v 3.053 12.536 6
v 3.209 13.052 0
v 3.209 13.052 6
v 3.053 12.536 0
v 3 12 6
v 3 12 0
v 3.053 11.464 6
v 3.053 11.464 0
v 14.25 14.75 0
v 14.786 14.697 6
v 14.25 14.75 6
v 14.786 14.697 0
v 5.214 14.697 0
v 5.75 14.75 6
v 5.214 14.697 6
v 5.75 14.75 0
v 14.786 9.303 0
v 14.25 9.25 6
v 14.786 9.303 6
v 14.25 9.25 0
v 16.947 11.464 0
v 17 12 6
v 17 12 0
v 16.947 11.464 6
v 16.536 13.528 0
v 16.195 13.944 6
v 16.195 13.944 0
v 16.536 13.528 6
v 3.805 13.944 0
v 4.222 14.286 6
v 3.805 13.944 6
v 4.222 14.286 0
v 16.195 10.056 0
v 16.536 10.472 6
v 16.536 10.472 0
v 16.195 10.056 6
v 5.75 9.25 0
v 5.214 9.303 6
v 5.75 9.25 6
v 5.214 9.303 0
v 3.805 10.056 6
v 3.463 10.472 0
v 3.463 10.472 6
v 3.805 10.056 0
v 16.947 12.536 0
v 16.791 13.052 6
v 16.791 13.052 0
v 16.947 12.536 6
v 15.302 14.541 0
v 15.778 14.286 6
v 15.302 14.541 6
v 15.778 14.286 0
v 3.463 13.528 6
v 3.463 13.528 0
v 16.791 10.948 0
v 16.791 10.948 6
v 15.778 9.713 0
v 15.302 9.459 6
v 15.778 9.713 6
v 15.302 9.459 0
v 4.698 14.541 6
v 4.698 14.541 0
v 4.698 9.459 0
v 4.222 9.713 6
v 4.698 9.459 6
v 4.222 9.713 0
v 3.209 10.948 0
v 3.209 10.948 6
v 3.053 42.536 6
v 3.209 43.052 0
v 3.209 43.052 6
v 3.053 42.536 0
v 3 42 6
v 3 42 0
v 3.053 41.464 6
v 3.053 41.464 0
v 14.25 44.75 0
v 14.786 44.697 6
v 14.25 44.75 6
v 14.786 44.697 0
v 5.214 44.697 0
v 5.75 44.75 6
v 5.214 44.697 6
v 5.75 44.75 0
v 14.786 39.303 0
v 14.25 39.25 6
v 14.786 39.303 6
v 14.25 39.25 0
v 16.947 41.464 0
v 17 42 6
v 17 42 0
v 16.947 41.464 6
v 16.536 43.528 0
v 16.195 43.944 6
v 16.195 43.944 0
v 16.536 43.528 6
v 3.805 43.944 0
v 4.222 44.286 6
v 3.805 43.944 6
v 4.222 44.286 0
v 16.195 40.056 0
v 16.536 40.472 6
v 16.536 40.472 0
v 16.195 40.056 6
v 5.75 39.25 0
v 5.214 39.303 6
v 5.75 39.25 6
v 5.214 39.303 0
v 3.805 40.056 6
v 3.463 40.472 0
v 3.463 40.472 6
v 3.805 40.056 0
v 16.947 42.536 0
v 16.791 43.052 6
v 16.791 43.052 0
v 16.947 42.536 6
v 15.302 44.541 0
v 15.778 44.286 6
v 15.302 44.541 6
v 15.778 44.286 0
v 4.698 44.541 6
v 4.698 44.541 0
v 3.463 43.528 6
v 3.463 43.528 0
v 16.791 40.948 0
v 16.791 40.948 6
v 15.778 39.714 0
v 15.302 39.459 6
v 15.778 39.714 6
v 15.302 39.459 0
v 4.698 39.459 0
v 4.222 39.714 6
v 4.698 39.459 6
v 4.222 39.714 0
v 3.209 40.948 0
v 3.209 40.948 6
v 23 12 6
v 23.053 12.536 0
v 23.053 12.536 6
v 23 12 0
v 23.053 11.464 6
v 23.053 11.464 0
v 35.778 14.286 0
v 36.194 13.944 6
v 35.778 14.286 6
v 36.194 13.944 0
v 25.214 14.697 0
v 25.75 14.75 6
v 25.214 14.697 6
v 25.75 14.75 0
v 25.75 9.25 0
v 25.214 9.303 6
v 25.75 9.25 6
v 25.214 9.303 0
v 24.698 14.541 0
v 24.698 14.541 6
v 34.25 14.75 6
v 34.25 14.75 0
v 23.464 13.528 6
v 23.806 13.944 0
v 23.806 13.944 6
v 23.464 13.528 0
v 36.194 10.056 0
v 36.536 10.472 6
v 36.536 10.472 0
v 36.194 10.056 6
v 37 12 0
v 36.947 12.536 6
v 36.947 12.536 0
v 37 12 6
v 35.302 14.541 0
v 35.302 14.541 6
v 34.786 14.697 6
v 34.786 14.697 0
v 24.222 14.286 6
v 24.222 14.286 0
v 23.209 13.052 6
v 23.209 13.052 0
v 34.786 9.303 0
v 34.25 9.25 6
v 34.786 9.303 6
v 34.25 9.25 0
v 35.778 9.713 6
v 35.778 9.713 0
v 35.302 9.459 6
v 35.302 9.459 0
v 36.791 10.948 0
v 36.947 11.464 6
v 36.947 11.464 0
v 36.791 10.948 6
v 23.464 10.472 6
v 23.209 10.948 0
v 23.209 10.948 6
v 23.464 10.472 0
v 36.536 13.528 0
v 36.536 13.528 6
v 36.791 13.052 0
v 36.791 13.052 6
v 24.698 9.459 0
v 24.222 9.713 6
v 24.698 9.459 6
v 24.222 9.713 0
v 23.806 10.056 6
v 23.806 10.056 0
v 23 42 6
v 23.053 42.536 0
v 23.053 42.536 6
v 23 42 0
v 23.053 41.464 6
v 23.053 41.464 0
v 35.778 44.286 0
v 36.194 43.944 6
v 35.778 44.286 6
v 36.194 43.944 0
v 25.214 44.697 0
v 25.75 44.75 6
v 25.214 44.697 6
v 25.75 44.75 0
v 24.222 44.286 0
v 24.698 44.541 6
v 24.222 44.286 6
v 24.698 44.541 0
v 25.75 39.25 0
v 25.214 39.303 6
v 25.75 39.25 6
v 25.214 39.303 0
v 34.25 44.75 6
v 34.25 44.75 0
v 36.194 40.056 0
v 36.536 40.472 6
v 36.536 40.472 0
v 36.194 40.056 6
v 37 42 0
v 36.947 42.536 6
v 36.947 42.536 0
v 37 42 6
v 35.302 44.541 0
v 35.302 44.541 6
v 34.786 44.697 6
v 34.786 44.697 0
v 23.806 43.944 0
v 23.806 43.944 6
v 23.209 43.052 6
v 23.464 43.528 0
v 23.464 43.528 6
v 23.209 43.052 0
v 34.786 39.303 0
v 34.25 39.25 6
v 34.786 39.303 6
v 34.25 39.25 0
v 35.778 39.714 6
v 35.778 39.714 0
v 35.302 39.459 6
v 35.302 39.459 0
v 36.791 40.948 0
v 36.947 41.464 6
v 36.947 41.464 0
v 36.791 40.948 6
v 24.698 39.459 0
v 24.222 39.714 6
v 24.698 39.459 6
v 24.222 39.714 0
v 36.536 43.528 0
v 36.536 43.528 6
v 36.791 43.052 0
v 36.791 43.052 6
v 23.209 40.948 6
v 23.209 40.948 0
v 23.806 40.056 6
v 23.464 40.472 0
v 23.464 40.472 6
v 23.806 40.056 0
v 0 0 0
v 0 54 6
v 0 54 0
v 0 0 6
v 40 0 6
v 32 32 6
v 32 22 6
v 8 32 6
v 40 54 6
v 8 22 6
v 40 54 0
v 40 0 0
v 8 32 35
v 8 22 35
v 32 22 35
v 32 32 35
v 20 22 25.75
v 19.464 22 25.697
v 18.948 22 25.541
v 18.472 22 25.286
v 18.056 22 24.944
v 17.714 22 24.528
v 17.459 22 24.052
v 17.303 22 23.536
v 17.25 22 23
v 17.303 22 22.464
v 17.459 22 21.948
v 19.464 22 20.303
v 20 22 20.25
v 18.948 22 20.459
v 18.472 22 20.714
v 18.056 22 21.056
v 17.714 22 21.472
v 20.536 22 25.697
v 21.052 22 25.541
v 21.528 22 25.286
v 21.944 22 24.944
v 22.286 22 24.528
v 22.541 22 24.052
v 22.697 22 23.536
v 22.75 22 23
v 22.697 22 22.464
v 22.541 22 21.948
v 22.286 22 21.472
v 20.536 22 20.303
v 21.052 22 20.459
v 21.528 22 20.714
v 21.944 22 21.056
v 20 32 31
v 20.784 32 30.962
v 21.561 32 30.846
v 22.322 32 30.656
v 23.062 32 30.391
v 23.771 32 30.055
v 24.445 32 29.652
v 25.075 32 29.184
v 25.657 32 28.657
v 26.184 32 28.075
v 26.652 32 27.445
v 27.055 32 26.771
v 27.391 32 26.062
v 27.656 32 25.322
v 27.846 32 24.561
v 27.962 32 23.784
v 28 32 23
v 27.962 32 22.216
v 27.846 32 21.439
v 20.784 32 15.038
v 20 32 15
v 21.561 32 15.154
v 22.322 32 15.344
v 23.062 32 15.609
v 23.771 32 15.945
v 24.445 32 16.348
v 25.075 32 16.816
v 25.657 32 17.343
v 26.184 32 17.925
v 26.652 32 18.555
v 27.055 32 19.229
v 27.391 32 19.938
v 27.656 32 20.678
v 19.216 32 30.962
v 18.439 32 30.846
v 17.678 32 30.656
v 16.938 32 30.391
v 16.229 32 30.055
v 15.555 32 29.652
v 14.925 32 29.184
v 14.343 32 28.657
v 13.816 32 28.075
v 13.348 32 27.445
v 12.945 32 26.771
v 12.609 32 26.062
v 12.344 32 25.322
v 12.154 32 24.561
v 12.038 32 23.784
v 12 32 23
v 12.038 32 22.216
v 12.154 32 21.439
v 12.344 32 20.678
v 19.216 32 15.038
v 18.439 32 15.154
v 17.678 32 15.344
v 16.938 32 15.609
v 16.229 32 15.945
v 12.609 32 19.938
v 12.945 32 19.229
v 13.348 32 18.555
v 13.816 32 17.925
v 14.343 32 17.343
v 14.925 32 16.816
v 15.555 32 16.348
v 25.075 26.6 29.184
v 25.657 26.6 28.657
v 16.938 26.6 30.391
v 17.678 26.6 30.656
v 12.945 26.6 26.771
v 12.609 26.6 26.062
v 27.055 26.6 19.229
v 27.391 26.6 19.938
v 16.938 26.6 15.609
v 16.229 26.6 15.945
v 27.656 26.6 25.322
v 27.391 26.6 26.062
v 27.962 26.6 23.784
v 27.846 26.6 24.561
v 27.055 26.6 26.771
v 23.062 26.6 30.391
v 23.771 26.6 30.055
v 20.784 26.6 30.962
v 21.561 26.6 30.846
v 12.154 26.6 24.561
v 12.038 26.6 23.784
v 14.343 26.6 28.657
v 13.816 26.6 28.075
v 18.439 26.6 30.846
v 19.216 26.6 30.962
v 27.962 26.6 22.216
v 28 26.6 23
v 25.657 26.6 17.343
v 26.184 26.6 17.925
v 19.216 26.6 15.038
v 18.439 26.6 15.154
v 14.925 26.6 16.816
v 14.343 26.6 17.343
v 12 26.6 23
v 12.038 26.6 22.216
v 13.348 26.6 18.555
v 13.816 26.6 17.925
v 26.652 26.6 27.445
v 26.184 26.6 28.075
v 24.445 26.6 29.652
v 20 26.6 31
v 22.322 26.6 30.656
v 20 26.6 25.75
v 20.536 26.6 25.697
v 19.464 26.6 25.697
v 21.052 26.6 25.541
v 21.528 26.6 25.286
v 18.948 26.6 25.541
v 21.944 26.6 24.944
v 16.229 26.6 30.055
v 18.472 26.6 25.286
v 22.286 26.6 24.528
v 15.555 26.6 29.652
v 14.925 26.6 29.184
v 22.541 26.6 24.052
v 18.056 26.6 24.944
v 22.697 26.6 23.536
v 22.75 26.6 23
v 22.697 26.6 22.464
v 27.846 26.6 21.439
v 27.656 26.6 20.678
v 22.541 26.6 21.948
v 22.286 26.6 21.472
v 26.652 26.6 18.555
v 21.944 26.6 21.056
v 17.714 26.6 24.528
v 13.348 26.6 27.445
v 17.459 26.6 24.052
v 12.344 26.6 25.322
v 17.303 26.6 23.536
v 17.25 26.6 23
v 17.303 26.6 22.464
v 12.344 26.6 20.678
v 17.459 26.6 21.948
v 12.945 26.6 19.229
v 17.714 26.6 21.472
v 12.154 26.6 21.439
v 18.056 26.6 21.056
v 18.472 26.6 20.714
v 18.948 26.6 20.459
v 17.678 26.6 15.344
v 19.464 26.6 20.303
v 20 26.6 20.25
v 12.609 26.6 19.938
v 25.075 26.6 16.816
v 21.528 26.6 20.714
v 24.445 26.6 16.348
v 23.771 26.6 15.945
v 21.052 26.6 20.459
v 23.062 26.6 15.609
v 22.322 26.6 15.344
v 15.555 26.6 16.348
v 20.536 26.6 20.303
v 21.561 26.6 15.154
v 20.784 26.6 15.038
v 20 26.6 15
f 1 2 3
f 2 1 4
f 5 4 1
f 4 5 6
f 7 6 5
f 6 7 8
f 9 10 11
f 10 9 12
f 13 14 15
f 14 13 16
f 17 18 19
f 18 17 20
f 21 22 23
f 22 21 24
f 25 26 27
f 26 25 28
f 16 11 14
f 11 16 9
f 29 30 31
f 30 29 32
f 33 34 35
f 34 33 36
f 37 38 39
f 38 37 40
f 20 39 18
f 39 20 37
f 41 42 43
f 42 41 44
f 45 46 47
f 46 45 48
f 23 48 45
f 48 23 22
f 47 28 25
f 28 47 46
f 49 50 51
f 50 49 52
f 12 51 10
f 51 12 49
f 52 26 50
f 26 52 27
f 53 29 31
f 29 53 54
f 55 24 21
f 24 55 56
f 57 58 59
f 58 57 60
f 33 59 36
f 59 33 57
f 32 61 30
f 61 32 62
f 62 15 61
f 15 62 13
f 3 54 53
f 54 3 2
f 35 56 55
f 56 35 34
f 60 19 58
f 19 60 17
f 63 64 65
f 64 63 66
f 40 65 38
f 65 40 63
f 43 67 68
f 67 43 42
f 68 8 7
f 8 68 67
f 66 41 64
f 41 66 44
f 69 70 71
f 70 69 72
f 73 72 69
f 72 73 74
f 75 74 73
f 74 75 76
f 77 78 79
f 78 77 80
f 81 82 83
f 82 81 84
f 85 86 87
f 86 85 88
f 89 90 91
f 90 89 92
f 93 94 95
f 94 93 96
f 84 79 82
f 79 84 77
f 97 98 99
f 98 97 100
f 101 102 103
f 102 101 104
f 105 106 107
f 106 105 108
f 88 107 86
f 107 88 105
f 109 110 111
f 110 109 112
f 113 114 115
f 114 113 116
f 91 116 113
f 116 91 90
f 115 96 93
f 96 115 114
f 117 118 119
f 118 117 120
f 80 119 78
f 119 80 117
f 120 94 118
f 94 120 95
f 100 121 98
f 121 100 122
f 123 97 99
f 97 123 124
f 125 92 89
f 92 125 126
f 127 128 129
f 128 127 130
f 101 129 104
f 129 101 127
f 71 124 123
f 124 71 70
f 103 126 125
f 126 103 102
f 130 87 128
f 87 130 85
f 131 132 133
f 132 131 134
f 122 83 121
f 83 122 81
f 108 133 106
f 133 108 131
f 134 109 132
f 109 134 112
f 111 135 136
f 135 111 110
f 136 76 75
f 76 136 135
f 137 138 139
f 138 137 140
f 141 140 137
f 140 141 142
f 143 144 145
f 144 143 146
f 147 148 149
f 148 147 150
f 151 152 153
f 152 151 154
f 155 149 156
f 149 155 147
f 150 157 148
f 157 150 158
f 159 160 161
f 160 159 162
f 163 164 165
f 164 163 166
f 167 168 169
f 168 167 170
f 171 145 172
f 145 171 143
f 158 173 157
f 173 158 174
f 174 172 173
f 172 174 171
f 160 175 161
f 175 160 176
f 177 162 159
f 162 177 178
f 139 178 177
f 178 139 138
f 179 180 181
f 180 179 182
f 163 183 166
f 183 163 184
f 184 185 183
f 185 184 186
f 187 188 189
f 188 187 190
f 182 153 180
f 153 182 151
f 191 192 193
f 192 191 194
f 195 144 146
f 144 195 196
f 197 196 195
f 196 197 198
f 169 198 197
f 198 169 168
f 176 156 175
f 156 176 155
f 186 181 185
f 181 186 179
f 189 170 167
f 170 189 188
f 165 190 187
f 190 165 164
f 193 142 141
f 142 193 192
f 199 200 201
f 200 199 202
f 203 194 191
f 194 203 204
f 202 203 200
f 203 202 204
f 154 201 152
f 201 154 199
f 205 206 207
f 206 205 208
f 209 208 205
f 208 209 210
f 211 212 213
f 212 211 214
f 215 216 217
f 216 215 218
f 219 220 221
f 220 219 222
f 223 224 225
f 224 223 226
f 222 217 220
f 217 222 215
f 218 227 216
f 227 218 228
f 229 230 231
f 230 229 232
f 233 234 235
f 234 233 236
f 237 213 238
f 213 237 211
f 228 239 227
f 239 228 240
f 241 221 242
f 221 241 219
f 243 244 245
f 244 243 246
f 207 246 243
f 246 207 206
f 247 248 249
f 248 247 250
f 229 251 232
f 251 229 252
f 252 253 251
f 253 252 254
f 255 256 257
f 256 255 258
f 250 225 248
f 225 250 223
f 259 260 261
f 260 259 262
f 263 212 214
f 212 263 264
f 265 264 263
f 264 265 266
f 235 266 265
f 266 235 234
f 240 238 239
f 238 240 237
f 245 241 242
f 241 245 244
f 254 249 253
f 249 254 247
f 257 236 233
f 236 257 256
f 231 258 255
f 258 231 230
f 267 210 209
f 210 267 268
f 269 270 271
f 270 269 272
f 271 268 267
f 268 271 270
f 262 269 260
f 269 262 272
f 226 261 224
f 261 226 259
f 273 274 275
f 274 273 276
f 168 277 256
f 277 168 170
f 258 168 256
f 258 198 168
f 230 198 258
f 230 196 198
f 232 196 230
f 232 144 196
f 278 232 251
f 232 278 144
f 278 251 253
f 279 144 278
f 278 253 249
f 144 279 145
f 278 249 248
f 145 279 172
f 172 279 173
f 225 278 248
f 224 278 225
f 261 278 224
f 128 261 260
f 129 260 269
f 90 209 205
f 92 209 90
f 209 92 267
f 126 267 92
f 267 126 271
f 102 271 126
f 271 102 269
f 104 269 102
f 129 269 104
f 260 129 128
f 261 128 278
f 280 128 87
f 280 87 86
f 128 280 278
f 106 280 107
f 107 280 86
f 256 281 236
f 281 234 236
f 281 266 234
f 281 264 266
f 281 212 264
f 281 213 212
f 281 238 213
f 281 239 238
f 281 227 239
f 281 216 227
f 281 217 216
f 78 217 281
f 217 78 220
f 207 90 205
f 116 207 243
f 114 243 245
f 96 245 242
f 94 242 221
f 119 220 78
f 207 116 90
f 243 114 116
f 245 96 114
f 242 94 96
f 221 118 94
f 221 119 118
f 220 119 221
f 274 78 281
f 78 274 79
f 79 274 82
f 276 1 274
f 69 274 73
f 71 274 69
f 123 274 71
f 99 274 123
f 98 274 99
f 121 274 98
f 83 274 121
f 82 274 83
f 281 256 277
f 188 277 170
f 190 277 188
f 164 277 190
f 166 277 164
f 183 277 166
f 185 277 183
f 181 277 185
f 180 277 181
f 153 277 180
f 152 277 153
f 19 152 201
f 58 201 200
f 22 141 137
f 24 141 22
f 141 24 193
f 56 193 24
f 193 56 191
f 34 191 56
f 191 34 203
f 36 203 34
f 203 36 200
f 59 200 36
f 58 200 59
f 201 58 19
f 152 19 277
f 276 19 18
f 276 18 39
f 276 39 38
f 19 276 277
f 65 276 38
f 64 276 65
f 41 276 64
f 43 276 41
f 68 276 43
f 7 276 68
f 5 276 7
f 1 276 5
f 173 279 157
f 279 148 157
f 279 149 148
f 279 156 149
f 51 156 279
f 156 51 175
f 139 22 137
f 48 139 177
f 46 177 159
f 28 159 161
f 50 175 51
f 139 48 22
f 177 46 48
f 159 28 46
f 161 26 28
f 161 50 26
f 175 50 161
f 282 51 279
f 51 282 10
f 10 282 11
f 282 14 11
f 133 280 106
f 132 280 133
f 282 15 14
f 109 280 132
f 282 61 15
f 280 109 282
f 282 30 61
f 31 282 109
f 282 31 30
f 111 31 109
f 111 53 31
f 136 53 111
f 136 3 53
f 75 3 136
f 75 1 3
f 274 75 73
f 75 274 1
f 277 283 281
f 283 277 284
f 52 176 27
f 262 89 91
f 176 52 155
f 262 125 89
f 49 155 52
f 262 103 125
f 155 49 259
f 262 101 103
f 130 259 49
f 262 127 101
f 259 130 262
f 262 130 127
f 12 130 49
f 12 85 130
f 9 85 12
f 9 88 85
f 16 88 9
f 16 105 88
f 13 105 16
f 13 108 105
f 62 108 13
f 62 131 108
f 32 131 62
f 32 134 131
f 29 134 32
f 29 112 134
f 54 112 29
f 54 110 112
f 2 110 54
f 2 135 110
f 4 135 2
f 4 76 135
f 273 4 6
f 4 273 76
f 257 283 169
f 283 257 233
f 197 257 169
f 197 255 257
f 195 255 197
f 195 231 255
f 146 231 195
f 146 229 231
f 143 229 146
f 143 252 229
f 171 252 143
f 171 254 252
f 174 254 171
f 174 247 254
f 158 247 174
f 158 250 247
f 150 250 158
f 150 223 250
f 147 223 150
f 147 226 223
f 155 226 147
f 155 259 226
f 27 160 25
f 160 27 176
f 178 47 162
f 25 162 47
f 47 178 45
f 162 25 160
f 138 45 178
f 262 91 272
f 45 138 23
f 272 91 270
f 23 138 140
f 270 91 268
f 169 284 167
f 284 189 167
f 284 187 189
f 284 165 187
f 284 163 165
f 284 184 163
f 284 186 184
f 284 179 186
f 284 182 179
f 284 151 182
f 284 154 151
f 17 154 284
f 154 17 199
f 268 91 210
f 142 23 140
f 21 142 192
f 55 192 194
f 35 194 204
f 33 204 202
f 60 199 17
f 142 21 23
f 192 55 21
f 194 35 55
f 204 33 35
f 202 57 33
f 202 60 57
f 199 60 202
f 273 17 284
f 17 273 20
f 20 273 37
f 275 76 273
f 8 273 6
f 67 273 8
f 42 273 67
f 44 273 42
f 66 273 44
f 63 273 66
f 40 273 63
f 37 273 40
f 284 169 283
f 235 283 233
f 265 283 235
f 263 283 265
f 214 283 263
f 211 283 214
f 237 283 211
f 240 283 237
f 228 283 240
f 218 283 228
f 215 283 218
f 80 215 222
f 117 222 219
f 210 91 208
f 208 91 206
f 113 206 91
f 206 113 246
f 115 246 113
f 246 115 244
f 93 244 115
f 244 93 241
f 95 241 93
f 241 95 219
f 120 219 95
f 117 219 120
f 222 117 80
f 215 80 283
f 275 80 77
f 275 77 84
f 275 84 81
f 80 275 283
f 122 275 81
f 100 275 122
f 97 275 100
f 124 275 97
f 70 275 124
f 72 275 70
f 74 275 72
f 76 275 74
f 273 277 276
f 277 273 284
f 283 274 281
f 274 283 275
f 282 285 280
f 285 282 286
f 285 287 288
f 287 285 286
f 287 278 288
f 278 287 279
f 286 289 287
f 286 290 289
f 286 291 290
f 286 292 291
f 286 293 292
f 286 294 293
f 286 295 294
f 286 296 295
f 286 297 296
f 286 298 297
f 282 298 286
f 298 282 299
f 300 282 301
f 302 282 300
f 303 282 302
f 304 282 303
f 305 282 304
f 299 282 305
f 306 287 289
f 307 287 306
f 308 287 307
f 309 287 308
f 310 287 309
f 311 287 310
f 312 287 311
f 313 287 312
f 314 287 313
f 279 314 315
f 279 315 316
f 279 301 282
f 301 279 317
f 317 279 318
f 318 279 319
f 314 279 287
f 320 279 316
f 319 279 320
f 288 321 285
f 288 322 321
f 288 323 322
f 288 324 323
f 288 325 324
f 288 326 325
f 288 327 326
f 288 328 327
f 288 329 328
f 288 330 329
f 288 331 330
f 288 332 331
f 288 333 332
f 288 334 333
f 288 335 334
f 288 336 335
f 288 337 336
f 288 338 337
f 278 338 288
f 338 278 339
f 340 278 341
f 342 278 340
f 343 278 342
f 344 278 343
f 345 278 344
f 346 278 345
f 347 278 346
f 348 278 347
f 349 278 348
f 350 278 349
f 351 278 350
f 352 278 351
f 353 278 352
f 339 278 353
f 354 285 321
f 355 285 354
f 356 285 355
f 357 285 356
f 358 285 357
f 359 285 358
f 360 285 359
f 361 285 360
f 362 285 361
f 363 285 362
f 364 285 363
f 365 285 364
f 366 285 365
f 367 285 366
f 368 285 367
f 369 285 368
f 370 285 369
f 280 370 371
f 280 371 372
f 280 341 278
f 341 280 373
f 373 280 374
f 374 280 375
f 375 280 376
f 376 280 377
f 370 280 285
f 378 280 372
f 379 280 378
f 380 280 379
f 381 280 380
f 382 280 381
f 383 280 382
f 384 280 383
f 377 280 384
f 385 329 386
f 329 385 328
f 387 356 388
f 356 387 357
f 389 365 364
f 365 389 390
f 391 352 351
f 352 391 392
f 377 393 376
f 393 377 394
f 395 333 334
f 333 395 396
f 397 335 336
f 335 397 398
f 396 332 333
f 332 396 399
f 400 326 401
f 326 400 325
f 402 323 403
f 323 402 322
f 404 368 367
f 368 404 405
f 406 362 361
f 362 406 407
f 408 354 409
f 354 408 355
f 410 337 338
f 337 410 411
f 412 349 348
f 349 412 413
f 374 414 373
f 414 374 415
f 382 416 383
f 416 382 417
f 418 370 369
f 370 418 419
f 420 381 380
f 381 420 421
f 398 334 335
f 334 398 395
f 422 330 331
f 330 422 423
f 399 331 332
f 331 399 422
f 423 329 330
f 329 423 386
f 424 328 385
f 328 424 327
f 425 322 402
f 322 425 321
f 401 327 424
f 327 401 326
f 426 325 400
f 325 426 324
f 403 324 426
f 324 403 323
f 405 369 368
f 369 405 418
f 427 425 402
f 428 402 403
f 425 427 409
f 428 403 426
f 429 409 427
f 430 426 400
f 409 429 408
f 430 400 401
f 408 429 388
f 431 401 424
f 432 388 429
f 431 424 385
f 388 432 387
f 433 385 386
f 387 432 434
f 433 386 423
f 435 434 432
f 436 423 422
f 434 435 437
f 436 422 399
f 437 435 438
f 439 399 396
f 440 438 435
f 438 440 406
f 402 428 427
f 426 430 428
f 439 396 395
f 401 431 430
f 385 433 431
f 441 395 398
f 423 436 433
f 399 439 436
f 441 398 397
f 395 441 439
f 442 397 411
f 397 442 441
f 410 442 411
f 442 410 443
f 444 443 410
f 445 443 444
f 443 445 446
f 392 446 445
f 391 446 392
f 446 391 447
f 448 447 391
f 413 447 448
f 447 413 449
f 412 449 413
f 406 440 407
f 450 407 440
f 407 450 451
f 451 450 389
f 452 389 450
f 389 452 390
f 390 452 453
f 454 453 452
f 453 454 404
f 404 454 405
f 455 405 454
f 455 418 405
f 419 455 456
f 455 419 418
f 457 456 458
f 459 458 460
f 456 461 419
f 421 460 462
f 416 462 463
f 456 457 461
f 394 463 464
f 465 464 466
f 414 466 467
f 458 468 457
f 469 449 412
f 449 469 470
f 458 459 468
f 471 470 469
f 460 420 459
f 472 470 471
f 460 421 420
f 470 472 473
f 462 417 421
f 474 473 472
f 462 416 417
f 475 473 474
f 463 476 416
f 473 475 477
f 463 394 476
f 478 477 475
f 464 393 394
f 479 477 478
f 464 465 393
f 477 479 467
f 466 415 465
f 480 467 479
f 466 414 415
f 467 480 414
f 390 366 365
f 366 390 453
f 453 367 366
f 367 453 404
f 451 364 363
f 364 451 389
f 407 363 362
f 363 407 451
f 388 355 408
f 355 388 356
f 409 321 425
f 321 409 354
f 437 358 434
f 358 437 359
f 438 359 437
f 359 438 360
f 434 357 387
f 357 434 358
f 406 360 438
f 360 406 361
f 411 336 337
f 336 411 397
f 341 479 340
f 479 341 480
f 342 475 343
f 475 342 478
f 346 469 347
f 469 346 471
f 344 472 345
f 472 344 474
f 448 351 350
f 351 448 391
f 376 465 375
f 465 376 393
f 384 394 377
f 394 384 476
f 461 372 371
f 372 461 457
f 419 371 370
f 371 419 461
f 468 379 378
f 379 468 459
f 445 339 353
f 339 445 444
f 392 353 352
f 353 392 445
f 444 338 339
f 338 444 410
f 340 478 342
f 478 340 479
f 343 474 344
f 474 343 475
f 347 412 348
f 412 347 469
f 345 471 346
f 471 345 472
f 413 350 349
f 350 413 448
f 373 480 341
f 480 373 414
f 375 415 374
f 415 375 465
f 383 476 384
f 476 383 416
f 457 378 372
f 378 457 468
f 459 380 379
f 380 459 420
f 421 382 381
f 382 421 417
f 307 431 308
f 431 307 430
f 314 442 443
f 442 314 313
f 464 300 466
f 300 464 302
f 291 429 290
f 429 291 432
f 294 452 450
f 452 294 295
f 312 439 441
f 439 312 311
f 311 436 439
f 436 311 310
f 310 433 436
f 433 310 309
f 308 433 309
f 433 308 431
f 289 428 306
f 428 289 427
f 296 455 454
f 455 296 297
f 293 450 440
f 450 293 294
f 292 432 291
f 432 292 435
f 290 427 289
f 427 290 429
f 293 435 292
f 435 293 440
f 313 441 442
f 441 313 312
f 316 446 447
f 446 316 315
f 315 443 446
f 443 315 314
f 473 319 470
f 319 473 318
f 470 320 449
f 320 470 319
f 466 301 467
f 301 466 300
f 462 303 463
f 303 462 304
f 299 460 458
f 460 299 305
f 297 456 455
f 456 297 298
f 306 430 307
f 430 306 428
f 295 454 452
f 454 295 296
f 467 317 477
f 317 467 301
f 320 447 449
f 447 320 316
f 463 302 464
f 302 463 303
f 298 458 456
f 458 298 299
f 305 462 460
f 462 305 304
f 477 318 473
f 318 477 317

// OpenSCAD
// SUPERSEDED 2026-07-29: reverted to captured-belt drive (see ADR 0047).
// The 625ZZ bearing now mounts directly into the laser-cut acrylic
// "bearing side" gantry plate (hardware/laser-cut/y-gantry-plate.svg),
// no separate printed standoff bracket needed. Kept here for reference
// only, not built.
//
// Far-end shaft support bracket: holds a 625ZZ bearing (5mm bore x 16mm OD
// x 5mm width) at the opposite end of the Y-axis shaft from the motor/idler
// mount (Printables/Nema 17 Motor mount Dual side.stl,
// Printables/jesc_hypercube_xy_idler_t16_v20-2.stl). See ADR 0046.
//
// Print settings: PLA-CF, 100% (solid) infill -- same rationale as the
// idler mount (0018): constantly-loaded shaft-support point, avoid
// infill-cavity creep/flex.
//
// NOT YET VERIFIED -- flagged parameters below, per this project's usual
// "verify against physical hardware" pattern:
//   - shaft_height: measured from the motor mount STL's own bounding box
//     (Z range -4 to 19.5mm) as a working estimate only. Must match the
//     motor mount's actual shaft/pulley centerline height once both are
//     physically in hand -- the 4 slotted tracks give horizontal (along-
//     beam) adjustment, not vertical, so this height needs to be close
//     to correct before printing, not just adjustable at assembly.
//   - bearing_bore_d: nominal 16.0mm for a 625ZZ press fit. PLA-CF prints
//     often come out slightly undersized -- test-fit and adjust before
//     committing to the final print.

// ---- Parameters ----
shaft_height = 17;         // TODO verify against motor mount's actual shaft height
plate_w = 40;               // base plate width (matches 2040's 40mm face)
plate_t = 6;                 // base plate thickness
bearing_bore_d = 16.0;       // 625ZZ OD press fit -- verify/adjust after test print
bearing_depth = 5.4;         // 625ZZ width (5mm) + 0.4mm clearance
tower_h = shaft_height + bearing_bore_d/2 + 4;  // tower must clear the full bearing pocket, not just its centerline
tower_w = 24;                // tower width (front-on)
tower_t = 10;                 // tower thickness (front-to-back) -- bearing_depth + retaining wall
shaft_clear_d = 5.5;         // shaft clearance through the bracket (bearing carries the shaft, not the bracket)
retaining_lip = 1.5;         // lip at the back of the bearing pocket, shaft passes through this

slot_w = 5.5;                 // M5 bolt clearance width
slot_len = 14;                // slot length -- along-beam adjustment travel
tslot_spacing = 20;           // 2040's two T-slots, 20mm apart (matches this project's other brackets)
slot_row_spacing = 30;        // vertical distance between the top and bottom slot rows
edge_margin = 12;             // margin from slot center to plate top/bottom edge

plate_h = slot_row_spacing + 2*edge_margin; // base plate height, room for both slot rows + margin

module slot(len, w) {
    hull() {
        translate([-len/2 + w/2, 0]) circle(d = w, $fn = 32);
        translate([len/2 - w/2, 0]) circle(d = w, $fn = 32);
    }
}

module base_plate() {
    difference() {
        cube([plate_w, plate_h, plate_t]);
        // 4 slotted tracks: 2 columns (matching the 2 T-slots, 20mm apart),
        // 2 slots per column (top and bottom), horizontal slots for
        // along-beam position adjustment
        for (col = [-1, 1])
            for (row_y = [edge_margin, edge_margin + slot_row_spacing])
                translate([plate_w/2 + col*tslot_spacing/2, row_y, -1])
                    linear_extrude(plate_t + 2)
                        slot(slot_len, slot_w);
    }
}

module tower() {
    translate([plate_w/2 - tower_w/2, plate_h/2 - tower_t/2, plate_t])
        cube([tower_w, tower_t, tower_h]);
}

module bearing_pocket() {
    translate([plate_w/2, plate_h/2, plate_t + shaft_height]) {
        rotate([90, 0, 0]) {
            // bearing pocket, blind (retaining lip at the back)
            translate([0, 0, -tower_t/2])
                cylinder(d = bearing_bore_d, h = bearing_depth, $fn = 64);
            // shaft clearance through-hole, full depth
            translate([0, 0, -tower_t/2 - 1])
                cylinder(d = shaft_clear_d, h = tower_t + 2, $fn = 32);
        }
    }
}

difference() {
    union() {
        base_plate();
        tower();
    }
    bearing_pocket();
}
